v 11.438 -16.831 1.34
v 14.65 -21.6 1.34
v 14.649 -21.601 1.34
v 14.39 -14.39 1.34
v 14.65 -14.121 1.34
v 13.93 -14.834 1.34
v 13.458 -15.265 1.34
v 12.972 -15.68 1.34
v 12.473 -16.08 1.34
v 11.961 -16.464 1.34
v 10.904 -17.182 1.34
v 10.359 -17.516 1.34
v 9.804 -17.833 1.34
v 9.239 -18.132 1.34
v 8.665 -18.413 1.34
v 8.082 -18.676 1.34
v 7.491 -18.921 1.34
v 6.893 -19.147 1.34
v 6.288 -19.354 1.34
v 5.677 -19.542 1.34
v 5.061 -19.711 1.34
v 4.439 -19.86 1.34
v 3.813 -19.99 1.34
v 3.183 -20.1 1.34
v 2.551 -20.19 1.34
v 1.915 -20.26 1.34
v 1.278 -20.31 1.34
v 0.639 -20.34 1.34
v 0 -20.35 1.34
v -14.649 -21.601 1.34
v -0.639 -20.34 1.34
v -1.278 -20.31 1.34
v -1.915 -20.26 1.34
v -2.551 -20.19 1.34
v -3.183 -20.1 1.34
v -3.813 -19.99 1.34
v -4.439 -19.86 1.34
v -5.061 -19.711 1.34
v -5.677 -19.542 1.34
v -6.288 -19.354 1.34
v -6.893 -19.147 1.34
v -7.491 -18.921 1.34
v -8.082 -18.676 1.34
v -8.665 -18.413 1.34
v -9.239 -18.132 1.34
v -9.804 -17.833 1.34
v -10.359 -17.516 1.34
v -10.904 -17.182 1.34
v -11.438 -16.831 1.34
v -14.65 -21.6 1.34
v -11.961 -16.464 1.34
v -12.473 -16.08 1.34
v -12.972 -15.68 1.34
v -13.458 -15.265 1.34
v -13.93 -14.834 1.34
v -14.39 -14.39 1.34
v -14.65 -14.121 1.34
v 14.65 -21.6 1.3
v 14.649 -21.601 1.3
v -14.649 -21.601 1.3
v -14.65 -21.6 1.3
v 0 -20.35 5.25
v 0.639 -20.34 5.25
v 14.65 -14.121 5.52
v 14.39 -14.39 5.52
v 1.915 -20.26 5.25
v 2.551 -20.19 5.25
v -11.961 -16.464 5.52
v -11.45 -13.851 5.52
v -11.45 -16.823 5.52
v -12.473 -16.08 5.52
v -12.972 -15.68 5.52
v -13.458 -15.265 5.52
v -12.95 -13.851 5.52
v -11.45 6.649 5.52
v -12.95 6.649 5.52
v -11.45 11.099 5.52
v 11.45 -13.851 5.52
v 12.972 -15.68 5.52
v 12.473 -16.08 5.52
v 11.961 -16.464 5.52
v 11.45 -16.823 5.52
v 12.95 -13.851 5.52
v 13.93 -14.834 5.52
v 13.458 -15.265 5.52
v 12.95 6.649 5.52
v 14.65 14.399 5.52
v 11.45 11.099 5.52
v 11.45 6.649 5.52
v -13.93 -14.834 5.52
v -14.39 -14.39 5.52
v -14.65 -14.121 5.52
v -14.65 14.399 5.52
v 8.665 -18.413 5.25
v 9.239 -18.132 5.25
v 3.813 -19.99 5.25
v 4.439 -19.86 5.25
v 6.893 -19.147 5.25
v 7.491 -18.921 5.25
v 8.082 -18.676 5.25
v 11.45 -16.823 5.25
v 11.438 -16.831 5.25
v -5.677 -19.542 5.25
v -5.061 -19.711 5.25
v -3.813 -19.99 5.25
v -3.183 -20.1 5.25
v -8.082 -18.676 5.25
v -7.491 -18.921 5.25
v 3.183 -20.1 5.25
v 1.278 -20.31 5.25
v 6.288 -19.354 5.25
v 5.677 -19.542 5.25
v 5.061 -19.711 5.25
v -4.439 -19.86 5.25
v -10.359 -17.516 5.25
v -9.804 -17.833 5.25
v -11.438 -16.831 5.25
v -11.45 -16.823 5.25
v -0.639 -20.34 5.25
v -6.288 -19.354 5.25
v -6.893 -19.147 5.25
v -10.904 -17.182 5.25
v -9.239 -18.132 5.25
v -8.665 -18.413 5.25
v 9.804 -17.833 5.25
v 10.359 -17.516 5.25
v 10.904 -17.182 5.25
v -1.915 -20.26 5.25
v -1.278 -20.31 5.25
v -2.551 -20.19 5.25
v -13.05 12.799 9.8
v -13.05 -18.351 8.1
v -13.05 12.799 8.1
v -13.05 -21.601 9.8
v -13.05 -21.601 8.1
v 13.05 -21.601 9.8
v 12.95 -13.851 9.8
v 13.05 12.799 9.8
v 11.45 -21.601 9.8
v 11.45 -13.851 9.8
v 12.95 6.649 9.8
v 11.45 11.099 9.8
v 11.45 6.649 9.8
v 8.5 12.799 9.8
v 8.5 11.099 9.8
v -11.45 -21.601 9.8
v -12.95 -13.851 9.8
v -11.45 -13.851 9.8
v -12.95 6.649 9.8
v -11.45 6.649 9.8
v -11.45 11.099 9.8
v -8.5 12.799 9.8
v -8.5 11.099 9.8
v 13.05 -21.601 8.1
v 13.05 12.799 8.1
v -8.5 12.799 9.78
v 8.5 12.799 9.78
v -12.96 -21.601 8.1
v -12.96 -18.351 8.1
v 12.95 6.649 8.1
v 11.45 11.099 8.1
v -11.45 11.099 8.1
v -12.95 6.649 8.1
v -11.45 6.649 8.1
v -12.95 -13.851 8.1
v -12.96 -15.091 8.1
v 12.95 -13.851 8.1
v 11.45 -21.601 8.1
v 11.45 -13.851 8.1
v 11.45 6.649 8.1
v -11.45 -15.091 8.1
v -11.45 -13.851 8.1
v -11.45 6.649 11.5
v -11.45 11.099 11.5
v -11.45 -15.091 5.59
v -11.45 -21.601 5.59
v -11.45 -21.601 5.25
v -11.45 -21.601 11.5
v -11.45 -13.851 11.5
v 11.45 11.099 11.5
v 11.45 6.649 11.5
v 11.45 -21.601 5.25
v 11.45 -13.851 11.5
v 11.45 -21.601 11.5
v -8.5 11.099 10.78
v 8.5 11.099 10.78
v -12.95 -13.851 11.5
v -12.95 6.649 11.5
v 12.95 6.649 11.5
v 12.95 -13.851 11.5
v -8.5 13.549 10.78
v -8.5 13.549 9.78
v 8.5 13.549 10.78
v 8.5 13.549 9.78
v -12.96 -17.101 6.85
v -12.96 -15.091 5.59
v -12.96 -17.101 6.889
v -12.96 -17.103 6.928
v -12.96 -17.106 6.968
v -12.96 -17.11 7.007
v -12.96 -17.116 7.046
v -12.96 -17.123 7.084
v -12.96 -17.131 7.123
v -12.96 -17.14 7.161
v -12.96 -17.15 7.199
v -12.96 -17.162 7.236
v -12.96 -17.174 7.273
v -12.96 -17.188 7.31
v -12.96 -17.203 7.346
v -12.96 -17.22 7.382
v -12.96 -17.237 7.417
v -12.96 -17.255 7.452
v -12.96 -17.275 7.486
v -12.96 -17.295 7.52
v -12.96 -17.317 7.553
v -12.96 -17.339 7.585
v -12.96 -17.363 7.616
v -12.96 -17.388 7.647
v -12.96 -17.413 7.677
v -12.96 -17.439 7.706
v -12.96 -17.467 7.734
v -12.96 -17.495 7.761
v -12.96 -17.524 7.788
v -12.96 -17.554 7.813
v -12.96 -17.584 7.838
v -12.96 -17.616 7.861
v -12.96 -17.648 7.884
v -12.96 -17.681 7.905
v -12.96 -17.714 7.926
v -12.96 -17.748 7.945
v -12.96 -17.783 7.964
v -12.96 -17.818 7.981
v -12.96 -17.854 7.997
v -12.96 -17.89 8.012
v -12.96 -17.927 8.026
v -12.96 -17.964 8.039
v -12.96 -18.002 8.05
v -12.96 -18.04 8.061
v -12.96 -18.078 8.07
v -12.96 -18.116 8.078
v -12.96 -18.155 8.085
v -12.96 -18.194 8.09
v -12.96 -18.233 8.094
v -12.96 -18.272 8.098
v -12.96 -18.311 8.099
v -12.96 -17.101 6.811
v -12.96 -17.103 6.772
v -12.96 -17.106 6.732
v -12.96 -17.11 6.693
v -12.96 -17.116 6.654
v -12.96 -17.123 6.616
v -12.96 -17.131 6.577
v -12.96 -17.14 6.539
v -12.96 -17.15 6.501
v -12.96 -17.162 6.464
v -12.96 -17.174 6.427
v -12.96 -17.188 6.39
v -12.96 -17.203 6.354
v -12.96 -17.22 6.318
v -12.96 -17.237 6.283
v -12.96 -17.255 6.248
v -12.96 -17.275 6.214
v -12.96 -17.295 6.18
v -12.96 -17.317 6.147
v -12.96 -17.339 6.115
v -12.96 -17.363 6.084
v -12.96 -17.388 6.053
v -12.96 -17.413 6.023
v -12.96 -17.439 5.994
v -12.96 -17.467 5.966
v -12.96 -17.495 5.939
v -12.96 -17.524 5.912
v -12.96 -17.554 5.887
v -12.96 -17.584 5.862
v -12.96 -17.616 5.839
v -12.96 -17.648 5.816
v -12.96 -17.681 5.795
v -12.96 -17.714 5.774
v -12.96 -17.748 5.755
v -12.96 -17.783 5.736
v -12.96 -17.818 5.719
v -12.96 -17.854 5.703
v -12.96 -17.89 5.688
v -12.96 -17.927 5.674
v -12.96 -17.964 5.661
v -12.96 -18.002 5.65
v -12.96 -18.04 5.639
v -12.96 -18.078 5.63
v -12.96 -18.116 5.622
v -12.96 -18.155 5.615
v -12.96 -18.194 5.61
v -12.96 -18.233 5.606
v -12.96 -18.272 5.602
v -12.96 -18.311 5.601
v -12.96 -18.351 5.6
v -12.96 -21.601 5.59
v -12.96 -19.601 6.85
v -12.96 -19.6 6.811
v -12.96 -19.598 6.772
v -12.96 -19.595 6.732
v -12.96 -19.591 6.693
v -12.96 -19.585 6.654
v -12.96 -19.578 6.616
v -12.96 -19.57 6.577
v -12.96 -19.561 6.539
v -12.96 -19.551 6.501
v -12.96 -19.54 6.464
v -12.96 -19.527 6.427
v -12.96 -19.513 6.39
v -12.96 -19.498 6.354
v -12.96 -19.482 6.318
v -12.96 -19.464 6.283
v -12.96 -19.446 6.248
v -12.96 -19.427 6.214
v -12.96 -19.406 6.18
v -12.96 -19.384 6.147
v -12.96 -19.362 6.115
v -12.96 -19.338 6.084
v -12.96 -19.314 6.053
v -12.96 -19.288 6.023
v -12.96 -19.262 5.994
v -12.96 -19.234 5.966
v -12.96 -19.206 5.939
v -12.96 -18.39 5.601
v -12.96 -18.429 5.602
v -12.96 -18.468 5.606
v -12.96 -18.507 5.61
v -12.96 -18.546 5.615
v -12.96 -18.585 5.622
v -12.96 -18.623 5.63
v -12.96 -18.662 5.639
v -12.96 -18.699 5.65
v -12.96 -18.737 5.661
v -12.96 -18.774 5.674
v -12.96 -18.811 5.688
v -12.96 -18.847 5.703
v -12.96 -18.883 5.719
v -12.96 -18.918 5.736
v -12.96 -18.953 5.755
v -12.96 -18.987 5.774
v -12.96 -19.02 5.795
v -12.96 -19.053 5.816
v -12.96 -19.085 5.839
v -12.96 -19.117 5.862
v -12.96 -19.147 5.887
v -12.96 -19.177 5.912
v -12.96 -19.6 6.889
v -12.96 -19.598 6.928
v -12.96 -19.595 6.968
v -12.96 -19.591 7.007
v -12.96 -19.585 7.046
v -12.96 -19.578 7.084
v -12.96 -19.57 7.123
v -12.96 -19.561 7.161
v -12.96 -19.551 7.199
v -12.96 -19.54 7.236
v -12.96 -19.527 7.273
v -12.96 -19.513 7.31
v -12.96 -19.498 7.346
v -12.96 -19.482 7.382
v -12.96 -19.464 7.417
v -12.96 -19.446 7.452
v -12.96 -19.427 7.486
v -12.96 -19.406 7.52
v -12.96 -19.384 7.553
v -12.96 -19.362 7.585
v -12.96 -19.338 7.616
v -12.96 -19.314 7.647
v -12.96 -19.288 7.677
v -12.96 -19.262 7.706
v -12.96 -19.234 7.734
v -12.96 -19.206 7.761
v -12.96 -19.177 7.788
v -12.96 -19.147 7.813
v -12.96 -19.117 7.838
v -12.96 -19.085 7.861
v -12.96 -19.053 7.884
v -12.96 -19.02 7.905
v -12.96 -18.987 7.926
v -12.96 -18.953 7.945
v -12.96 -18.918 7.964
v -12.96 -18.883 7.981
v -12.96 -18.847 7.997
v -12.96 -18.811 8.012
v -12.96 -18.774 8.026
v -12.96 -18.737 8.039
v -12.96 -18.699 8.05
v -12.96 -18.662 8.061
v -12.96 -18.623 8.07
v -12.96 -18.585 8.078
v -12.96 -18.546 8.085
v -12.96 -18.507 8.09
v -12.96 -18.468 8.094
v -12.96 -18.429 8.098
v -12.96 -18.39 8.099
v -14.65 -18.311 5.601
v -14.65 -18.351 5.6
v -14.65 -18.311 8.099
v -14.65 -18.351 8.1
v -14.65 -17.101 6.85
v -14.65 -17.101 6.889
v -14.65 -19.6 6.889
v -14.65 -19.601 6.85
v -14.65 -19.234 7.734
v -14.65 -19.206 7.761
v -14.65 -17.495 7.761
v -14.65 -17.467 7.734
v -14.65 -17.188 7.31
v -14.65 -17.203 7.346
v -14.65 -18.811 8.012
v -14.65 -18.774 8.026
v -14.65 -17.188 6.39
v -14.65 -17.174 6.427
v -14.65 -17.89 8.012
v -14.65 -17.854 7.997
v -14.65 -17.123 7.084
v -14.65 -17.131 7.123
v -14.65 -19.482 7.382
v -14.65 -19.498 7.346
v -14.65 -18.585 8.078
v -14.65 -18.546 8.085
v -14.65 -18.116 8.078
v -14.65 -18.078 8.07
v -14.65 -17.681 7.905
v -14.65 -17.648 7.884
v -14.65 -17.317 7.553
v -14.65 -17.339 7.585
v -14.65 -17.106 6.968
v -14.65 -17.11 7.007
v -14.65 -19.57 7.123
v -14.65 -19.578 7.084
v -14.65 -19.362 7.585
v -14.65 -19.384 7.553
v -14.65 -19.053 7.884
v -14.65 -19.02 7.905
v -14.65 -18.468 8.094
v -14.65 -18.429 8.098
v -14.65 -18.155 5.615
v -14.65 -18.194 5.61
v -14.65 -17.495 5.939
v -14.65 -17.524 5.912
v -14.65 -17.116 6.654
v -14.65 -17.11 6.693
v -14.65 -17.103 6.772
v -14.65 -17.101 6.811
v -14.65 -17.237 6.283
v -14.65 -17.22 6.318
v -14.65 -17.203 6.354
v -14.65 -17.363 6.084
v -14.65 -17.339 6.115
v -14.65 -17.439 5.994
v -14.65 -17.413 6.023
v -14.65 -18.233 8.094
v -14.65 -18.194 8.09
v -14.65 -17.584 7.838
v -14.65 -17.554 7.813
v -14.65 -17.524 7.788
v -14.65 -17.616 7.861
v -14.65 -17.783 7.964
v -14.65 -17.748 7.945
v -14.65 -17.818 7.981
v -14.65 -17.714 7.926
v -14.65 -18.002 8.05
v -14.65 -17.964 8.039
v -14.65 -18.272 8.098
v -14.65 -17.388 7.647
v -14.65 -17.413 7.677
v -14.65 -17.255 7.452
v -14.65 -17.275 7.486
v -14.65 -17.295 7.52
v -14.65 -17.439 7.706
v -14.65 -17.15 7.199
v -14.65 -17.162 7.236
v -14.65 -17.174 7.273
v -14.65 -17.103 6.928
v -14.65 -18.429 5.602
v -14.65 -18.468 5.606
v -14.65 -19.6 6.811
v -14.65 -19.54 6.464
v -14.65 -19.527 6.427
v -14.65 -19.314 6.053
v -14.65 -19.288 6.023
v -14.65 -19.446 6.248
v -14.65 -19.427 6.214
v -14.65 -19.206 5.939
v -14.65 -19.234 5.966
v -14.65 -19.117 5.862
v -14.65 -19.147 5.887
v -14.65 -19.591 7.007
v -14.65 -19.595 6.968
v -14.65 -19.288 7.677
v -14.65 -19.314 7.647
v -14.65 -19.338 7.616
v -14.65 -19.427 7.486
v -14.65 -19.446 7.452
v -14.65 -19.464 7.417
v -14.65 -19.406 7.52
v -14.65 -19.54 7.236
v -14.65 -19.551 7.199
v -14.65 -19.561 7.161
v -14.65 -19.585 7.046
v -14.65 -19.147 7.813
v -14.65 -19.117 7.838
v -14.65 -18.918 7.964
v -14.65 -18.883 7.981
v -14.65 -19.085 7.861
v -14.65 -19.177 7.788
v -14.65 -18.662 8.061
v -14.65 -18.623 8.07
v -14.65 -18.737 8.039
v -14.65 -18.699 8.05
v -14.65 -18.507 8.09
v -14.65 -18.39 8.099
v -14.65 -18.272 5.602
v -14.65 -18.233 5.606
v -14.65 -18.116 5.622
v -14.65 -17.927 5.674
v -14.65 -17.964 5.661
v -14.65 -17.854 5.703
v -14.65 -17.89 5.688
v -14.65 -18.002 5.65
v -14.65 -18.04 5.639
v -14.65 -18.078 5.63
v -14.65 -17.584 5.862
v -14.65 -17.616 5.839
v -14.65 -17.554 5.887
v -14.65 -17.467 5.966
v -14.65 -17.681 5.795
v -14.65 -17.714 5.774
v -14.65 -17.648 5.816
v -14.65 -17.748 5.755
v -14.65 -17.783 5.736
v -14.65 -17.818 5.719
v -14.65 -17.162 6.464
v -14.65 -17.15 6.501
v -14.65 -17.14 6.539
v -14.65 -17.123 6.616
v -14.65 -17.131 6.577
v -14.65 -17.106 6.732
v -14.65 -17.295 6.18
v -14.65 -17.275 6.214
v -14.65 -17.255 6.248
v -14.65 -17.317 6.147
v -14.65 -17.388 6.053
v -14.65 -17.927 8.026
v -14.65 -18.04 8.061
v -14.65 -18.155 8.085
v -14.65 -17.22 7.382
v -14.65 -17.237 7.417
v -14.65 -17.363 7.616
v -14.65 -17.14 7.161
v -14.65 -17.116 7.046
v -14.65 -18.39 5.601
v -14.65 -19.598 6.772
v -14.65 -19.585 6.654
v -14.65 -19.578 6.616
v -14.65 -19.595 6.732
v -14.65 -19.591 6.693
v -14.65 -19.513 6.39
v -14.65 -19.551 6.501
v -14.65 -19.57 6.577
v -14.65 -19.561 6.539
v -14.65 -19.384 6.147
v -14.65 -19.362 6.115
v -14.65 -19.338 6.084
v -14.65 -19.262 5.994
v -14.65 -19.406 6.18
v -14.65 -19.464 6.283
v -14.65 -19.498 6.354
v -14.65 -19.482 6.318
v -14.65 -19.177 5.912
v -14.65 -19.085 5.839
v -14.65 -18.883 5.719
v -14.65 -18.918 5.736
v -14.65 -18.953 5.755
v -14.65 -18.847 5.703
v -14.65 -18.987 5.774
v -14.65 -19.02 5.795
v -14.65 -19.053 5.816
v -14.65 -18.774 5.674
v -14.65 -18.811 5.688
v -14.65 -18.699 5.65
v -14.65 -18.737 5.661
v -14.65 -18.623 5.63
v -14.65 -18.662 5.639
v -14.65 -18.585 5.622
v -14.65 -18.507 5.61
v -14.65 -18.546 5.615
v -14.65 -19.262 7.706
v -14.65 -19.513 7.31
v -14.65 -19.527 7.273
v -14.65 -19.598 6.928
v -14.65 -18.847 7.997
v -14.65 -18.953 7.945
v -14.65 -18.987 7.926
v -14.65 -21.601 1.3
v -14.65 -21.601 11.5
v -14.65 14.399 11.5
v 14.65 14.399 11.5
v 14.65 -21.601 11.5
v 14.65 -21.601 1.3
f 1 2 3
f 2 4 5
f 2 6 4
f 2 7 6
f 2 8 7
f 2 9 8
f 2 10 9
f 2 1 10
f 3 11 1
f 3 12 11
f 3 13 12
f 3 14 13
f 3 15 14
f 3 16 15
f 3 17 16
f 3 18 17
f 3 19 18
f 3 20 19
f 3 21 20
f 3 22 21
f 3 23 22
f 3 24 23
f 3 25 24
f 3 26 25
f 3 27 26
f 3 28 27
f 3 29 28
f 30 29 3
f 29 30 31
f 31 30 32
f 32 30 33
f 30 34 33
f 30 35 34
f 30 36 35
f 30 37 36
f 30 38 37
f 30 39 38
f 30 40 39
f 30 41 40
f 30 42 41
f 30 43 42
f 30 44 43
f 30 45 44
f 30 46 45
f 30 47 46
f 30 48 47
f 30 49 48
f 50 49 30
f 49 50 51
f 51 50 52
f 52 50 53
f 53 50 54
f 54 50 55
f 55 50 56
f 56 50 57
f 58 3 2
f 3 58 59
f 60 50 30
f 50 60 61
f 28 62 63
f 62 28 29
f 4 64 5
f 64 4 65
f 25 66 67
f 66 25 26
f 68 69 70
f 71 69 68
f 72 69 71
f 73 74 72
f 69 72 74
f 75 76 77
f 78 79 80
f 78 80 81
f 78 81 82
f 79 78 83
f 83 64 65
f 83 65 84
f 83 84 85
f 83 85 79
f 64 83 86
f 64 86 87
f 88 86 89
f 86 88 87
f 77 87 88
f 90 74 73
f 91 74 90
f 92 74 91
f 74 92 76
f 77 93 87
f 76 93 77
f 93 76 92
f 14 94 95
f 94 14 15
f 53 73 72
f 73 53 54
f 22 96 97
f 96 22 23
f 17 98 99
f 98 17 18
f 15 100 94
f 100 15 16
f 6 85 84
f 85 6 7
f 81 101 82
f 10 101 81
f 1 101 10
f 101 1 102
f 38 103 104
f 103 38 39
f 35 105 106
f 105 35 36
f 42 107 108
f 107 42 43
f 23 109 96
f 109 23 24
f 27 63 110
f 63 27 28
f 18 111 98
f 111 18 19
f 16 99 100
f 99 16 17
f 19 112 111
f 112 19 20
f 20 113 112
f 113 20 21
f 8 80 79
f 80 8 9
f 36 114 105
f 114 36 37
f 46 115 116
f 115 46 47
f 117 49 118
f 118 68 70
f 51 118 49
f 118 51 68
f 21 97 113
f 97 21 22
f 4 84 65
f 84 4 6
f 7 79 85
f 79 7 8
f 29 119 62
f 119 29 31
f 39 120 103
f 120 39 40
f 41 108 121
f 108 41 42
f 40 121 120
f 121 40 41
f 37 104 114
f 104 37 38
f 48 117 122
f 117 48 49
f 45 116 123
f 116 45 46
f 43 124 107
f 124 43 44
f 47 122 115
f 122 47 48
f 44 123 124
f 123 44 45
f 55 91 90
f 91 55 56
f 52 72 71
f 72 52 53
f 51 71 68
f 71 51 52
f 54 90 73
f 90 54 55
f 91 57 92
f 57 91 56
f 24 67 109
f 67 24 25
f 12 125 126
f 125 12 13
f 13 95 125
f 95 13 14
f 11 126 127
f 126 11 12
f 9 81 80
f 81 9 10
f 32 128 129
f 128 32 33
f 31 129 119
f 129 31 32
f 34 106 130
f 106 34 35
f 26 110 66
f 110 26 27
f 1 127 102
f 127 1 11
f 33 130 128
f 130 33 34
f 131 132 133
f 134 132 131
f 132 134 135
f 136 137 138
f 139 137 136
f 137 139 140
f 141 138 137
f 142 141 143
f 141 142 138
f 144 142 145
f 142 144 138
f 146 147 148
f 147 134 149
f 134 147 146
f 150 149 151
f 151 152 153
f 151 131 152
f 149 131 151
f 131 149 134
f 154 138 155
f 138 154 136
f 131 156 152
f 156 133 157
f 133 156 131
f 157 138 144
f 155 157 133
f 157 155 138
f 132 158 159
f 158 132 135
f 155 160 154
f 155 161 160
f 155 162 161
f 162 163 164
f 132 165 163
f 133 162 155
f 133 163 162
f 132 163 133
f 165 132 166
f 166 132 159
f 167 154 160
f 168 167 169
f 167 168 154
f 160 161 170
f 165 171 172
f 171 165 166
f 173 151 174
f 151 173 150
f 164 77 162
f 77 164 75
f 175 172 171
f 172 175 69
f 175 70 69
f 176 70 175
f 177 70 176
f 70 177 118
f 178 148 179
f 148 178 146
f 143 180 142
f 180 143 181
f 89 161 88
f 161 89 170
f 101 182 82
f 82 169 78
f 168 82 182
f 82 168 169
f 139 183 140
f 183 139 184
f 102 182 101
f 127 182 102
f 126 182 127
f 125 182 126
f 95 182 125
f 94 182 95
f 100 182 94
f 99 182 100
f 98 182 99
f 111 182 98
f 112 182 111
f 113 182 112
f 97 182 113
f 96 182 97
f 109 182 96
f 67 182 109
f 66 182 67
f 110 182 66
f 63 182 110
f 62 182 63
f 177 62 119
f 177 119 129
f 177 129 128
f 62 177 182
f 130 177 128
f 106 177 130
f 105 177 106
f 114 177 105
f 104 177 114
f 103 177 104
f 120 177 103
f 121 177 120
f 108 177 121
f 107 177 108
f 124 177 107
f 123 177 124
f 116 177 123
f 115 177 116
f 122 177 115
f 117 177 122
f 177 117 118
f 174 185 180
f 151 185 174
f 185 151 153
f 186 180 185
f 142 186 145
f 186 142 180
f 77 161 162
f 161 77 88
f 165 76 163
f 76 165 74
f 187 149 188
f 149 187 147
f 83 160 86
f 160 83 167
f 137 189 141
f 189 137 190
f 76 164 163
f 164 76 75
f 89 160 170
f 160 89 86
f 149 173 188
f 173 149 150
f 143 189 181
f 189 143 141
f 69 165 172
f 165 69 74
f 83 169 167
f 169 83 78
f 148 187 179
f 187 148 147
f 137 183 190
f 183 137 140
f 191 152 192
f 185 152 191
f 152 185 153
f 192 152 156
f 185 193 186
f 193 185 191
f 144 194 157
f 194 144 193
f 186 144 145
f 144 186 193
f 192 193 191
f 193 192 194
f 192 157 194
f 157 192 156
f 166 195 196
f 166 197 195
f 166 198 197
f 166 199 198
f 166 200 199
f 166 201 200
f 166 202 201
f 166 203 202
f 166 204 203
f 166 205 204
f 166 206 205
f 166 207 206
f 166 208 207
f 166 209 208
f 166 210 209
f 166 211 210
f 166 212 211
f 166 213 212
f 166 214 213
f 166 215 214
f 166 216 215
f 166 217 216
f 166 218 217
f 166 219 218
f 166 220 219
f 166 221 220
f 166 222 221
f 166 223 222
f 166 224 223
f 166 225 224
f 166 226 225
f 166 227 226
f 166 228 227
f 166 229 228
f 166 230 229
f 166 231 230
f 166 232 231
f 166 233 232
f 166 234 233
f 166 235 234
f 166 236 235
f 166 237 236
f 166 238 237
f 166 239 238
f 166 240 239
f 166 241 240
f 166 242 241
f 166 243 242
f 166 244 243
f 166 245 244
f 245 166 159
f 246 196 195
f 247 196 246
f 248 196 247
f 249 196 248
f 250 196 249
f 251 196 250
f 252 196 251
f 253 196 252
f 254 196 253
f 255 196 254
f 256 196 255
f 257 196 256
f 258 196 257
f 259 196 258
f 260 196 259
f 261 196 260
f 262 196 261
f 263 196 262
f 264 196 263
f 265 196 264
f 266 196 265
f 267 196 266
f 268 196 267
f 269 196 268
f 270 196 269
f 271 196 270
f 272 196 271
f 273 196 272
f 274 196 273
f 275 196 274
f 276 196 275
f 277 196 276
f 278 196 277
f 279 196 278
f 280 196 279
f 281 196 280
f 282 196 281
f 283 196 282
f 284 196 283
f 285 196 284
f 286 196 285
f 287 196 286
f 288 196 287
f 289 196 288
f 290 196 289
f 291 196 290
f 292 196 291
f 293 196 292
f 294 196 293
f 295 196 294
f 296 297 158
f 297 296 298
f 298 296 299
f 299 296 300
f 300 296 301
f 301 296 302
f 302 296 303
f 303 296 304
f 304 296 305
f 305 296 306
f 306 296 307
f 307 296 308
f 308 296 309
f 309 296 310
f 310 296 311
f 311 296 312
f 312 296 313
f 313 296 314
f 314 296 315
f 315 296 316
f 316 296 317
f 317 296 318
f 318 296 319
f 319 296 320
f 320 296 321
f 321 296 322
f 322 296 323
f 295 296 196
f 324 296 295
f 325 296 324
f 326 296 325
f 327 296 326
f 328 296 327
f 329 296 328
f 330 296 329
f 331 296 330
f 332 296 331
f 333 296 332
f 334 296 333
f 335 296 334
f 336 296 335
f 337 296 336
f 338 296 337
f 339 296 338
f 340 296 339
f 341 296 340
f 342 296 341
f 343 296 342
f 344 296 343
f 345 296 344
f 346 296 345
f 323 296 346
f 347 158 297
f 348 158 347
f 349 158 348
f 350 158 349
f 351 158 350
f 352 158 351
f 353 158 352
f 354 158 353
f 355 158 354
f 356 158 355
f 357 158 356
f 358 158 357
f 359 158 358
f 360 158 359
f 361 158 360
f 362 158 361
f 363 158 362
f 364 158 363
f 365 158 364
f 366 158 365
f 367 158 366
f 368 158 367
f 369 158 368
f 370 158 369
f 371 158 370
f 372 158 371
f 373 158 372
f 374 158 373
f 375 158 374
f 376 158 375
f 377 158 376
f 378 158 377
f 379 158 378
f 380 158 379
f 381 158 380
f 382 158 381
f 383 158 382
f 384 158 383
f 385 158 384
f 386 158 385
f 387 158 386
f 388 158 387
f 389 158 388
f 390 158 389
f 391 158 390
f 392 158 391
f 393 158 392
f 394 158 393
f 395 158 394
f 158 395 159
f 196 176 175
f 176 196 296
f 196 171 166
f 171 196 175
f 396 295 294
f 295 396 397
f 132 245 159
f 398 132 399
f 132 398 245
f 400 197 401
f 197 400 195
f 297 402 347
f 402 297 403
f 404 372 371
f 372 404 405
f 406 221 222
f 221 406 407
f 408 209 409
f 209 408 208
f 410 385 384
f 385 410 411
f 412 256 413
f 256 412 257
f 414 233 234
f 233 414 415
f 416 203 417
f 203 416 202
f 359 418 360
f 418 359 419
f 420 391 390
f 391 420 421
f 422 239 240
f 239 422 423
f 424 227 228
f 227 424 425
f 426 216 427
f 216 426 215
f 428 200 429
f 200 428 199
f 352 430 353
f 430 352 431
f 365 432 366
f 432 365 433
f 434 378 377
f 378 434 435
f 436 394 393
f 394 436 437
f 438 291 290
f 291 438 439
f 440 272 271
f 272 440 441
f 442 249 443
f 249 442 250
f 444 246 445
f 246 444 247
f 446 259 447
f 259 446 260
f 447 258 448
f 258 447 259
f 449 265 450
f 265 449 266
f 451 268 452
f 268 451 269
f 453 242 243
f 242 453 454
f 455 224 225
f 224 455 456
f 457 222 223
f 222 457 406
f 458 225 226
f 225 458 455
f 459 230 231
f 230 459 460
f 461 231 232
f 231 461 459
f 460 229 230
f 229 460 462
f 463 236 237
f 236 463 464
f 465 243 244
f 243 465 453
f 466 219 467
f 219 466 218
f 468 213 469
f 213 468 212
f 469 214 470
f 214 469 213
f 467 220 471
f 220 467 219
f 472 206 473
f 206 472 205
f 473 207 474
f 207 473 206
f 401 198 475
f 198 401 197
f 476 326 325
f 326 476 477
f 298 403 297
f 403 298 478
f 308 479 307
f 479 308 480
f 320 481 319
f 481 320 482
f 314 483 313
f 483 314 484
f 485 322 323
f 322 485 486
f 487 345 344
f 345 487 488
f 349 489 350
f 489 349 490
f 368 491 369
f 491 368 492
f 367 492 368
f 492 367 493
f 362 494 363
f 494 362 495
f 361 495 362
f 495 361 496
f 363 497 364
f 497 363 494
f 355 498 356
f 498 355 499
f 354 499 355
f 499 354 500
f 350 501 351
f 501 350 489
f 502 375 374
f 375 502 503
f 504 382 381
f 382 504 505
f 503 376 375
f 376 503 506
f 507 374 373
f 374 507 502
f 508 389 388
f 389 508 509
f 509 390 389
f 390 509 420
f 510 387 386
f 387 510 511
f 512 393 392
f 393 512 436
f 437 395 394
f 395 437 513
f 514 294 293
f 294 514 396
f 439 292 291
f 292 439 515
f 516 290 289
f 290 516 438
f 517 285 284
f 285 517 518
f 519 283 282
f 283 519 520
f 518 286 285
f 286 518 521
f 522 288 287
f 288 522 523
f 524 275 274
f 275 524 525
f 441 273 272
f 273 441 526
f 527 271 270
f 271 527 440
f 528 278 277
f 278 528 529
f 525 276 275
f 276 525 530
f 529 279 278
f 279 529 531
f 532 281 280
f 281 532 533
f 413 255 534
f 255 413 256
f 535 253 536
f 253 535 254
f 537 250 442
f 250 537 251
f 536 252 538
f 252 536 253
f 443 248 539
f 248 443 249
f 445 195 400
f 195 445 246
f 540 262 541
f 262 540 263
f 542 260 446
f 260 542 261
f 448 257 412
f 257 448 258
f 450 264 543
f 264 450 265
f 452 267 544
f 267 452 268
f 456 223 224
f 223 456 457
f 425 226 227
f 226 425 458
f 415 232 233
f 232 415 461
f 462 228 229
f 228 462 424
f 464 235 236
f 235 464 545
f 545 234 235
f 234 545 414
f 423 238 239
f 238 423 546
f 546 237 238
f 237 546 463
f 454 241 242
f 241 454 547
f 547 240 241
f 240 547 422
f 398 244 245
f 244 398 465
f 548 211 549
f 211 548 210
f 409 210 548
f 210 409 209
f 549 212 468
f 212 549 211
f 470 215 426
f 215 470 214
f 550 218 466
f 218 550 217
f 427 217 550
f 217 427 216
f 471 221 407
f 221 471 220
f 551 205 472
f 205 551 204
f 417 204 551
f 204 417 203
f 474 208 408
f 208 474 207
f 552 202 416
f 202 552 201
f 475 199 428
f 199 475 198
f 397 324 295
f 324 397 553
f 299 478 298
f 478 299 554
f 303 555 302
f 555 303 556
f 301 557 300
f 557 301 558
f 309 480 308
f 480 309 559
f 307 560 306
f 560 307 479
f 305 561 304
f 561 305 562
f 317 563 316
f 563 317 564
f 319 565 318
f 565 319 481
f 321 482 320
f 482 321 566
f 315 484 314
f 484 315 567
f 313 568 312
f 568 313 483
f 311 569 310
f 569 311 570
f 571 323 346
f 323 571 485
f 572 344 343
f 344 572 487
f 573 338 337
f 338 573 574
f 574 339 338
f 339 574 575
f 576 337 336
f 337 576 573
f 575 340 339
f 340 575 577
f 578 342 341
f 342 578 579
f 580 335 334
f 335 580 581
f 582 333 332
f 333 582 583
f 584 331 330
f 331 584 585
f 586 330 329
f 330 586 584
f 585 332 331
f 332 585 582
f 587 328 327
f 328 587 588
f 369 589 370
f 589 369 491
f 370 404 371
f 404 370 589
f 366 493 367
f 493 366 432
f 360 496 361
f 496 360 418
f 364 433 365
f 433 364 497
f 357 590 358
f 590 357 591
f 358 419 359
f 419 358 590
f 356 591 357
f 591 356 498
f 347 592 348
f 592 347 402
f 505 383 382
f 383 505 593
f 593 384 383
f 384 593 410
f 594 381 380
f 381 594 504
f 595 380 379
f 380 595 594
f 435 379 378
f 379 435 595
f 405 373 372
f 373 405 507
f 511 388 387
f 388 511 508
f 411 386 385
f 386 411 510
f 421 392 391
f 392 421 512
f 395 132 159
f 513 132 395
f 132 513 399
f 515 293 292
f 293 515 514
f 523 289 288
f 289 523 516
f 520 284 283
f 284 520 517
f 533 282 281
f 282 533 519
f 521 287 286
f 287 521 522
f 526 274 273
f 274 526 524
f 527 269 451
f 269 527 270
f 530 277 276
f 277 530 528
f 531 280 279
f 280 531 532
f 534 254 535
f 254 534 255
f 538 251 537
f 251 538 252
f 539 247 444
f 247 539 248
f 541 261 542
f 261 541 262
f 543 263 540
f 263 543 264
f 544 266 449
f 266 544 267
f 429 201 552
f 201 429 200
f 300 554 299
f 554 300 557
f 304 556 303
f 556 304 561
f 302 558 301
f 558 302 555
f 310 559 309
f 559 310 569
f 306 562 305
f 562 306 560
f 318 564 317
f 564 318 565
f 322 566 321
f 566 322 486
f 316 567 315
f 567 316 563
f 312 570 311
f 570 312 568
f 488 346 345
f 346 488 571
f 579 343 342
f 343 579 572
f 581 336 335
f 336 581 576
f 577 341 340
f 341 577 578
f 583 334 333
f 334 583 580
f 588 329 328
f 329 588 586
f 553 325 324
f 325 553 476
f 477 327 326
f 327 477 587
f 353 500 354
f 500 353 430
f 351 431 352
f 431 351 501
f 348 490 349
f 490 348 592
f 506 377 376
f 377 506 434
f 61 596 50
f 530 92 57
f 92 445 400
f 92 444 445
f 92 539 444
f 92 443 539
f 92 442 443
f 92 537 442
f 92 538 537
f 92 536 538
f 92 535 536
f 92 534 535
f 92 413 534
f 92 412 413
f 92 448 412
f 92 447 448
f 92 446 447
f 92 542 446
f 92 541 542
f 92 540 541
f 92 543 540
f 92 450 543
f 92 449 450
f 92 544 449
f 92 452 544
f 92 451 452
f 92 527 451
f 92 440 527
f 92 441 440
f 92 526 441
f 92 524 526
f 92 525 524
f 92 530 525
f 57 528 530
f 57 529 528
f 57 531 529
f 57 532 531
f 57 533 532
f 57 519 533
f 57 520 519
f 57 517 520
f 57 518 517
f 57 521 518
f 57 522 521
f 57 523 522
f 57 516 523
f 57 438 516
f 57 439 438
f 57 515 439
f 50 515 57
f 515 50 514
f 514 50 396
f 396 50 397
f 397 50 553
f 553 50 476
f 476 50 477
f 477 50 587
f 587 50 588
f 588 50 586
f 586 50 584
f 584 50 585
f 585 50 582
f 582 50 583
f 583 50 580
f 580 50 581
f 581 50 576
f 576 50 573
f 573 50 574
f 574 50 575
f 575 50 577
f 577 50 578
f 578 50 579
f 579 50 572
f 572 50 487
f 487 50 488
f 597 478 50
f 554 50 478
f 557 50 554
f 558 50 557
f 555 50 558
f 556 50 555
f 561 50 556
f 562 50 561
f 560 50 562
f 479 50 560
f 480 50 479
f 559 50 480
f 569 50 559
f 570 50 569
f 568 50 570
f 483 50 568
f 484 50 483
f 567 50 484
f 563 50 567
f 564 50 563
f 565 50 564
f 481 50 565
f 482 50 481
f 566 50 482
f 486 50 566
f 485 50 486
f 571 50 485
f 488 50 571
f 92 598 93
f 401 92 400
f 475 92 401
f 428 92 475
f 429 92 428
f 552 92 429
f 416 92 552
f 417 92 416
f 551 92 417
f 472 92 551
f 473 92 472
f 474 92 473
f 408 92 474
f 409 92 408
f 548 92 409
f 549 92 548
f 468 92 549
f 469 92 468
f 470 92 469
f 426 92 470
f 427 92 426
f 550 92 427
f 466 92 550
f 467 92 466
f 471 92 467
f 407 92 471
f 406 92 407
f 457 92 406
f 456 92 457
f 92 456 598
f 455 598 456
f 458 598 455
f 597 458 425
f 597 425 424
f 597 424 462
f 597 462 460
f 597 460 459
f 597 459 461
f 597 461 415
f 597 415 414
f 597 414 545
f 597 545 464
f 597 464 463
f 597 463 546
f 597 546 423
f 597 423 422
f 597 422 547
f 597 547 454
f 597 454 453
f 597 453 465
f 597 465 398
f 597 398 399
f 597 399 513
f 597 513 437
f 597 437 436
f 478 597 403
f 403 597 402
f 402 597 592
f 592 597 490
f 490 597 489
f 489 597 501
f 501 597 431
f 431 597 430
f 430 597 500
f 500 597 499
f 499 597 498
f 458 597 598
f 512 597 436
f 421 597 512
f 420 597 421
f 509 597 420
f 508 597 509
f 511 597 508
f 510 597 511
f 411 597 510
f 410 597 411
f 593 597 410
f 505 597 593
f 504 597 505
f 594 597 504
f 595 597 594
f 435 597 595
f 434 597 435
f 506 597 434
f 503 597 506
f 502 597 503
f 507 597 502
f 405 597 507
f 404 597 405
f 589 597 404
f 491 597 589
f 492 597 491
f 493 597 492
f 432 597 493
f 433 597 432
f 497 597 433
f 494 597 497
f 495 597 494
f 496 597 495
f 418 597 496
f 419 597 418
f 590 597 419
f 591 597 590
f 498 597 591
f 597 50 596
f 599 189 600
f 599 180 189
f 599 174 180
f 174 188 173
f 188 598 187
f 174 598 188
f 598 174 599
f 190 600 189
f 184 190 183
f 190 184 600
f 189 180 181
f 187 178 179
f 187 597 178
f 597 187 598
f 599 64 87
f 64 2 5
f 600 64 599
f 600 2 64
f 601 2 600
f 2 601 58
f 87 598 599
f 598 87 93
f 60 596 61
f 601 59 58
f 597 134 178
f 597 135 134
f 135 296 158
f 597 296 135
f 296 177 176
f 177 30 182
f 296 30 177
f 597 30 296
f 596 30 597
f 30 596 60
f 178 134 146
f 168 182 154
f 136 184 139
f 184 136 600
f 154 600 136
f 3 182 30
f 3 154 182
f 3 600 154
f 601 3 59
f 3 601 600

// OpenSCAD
shrinkPCT=.2; //%, PLA
fudge=.02;  //mm
shrinkFactor=1+shrinkPCT/100;
nozzleDiameter=.4;

$fn=200;

railDepth=1.5; //this is the depth of the slots that the board slides into
metalCapHeight=3.1; //the thickness of the metal cap plus the 8266 board on which it sits

boardWidth=25.9;
boardLength=34.3;
boardThickness=1.7;
boardWallThickness=boardThickness; //the thickness at the back of the board groove
boardConnectorEndThickness=4.3;
antennaWidth=17;
antennaDepth=7;
antennaThickness=1;
switchLength=6.5;
switchDepth=4.5;
switchHeight=2.5;
switchButtonOffset=4; //button center from front edge of card
switchButtonDiameter=2.5;

baseOuterDiameter=52.2;
baseThickness=1.3;
baseInnerDiameter=40.7;
baseInnerHeight=4.2;

boardCubeHeight=baseInnerHeight+boardConnectorEndThickness+boardThickness;
boardCubeWidth=boardWidth+boardWallThickness*2;
boardCubeLength=boardLength+boardWallThickness; //only need the extra length on the back side

baseOuterRadius=baseOuterDiameter/2;
boardCubeOffset=(baseOuterRadius+boardCubeLength/2)-(baseOuterRadius+sqrt(pow(baseOuterRadius,2)-pow(boardCubeWidth/2,2))); //this puts the corners of the board right at the edge of the base

boardSpaceWidth=boardWidth-railDepth*2;
boardSpaceLength=boardLength-railDepth;
boardSpaceHeight=boardConnectorEndThickness+metalCapHeight;
boardWireSpaceWidth=boardWidth; 
boardWireSpaceLength=20.5;
boardWireSpaceOffset=6; //from antenna end of the board

module mount()
  {
  difference()
    {
    //the main cube that holds the board
    translate([0,boardCubeOffset,boardCubeHeight/2+baseThickness])
      {
      cube([boardCubeWidth,boardCubeLength,boardCubeHeight],center=true);
      }
    union()
      {
      cylinder(d=baseOuterDiameter,h=baseThickness+fudge*2); //the thin base
      translate([0,0,baseThickness+fudge])
        {
        cylinder(d=baseInnerDiameter, h=baseInnerHeight); //the thicker center part of the base
        }
      translate([0,boardCubeOffset-boardWallThickness/2,baseThickness+baseInnerHeight+boardConnectorEndThickness-boardThickness/2])
        {
        cube([boardWidth+.2,boardLength+.2,boardThickness],center=true); //the slot for the card edges
        }
      translate([0,boardCubeOffset-boardWallThickness,baseThickness+baseInnerHeight+boardConnectorEndThickness-boardThickness/2])
        {
        cube([boardSpaceWidth,boardSpaceLength,boardSpaceHeight],center=true); //space for the board components
        }
      translate([0,boardCubeOffset,baseThickness+baseInnerHeight+boardConnectorEndThickness-boardThickness/2])
        {
        cube([boardWireSpaceWidth,boardWireSpaceLength,boardSpaceHeight],center=true); //space for the wire connections
        }
      translate([0,boardCubeOffset-antennaDepth/2+boardLength/2,baseThickness+baseInnerHeight+boardConnectorEndThickness+antennaThickness/2-fudge])
        {
        cube([antennaWidth,antennaDepth,antennaThickness],center=true); //space for the wire connections
        }
      translate([-(boardWidth/2-switchDepth/2),boardCubeOffset-(boardLength/2-switchLength/2+boardWallThickness/2),baseThickness+baseInnerHeight+boardConnectorEndThickness-boardThickness-switchHeight/2])
        {
        cube([switchDepth+fudge,switchLength+fudge,switchHeight+fudge],center=true); //space for the reset switch
        }
      translate([-(boardWidth/2+5),boardCubeOffset-(boardLength/2-switchLength/2+boardWallThickness/2),baseThickness+baseInnerHeight+boardConnectorEndThickness-boardThickness-switchHeight/2])
        {
        rotate([0,90,0])
          cylinder(h=5,d=switchButtonDiameter); //hole for the reset button
        }
      translate([-boardCubeWidth/2-fudge,boardCubeLength/2+boardCubeOffset-2.5,baseThickness+fudge])
        {
        cube([boardCubeWidth+fudge*2,5,baseInnerHeight]);
        }
      } 
    }
  }

mount();
